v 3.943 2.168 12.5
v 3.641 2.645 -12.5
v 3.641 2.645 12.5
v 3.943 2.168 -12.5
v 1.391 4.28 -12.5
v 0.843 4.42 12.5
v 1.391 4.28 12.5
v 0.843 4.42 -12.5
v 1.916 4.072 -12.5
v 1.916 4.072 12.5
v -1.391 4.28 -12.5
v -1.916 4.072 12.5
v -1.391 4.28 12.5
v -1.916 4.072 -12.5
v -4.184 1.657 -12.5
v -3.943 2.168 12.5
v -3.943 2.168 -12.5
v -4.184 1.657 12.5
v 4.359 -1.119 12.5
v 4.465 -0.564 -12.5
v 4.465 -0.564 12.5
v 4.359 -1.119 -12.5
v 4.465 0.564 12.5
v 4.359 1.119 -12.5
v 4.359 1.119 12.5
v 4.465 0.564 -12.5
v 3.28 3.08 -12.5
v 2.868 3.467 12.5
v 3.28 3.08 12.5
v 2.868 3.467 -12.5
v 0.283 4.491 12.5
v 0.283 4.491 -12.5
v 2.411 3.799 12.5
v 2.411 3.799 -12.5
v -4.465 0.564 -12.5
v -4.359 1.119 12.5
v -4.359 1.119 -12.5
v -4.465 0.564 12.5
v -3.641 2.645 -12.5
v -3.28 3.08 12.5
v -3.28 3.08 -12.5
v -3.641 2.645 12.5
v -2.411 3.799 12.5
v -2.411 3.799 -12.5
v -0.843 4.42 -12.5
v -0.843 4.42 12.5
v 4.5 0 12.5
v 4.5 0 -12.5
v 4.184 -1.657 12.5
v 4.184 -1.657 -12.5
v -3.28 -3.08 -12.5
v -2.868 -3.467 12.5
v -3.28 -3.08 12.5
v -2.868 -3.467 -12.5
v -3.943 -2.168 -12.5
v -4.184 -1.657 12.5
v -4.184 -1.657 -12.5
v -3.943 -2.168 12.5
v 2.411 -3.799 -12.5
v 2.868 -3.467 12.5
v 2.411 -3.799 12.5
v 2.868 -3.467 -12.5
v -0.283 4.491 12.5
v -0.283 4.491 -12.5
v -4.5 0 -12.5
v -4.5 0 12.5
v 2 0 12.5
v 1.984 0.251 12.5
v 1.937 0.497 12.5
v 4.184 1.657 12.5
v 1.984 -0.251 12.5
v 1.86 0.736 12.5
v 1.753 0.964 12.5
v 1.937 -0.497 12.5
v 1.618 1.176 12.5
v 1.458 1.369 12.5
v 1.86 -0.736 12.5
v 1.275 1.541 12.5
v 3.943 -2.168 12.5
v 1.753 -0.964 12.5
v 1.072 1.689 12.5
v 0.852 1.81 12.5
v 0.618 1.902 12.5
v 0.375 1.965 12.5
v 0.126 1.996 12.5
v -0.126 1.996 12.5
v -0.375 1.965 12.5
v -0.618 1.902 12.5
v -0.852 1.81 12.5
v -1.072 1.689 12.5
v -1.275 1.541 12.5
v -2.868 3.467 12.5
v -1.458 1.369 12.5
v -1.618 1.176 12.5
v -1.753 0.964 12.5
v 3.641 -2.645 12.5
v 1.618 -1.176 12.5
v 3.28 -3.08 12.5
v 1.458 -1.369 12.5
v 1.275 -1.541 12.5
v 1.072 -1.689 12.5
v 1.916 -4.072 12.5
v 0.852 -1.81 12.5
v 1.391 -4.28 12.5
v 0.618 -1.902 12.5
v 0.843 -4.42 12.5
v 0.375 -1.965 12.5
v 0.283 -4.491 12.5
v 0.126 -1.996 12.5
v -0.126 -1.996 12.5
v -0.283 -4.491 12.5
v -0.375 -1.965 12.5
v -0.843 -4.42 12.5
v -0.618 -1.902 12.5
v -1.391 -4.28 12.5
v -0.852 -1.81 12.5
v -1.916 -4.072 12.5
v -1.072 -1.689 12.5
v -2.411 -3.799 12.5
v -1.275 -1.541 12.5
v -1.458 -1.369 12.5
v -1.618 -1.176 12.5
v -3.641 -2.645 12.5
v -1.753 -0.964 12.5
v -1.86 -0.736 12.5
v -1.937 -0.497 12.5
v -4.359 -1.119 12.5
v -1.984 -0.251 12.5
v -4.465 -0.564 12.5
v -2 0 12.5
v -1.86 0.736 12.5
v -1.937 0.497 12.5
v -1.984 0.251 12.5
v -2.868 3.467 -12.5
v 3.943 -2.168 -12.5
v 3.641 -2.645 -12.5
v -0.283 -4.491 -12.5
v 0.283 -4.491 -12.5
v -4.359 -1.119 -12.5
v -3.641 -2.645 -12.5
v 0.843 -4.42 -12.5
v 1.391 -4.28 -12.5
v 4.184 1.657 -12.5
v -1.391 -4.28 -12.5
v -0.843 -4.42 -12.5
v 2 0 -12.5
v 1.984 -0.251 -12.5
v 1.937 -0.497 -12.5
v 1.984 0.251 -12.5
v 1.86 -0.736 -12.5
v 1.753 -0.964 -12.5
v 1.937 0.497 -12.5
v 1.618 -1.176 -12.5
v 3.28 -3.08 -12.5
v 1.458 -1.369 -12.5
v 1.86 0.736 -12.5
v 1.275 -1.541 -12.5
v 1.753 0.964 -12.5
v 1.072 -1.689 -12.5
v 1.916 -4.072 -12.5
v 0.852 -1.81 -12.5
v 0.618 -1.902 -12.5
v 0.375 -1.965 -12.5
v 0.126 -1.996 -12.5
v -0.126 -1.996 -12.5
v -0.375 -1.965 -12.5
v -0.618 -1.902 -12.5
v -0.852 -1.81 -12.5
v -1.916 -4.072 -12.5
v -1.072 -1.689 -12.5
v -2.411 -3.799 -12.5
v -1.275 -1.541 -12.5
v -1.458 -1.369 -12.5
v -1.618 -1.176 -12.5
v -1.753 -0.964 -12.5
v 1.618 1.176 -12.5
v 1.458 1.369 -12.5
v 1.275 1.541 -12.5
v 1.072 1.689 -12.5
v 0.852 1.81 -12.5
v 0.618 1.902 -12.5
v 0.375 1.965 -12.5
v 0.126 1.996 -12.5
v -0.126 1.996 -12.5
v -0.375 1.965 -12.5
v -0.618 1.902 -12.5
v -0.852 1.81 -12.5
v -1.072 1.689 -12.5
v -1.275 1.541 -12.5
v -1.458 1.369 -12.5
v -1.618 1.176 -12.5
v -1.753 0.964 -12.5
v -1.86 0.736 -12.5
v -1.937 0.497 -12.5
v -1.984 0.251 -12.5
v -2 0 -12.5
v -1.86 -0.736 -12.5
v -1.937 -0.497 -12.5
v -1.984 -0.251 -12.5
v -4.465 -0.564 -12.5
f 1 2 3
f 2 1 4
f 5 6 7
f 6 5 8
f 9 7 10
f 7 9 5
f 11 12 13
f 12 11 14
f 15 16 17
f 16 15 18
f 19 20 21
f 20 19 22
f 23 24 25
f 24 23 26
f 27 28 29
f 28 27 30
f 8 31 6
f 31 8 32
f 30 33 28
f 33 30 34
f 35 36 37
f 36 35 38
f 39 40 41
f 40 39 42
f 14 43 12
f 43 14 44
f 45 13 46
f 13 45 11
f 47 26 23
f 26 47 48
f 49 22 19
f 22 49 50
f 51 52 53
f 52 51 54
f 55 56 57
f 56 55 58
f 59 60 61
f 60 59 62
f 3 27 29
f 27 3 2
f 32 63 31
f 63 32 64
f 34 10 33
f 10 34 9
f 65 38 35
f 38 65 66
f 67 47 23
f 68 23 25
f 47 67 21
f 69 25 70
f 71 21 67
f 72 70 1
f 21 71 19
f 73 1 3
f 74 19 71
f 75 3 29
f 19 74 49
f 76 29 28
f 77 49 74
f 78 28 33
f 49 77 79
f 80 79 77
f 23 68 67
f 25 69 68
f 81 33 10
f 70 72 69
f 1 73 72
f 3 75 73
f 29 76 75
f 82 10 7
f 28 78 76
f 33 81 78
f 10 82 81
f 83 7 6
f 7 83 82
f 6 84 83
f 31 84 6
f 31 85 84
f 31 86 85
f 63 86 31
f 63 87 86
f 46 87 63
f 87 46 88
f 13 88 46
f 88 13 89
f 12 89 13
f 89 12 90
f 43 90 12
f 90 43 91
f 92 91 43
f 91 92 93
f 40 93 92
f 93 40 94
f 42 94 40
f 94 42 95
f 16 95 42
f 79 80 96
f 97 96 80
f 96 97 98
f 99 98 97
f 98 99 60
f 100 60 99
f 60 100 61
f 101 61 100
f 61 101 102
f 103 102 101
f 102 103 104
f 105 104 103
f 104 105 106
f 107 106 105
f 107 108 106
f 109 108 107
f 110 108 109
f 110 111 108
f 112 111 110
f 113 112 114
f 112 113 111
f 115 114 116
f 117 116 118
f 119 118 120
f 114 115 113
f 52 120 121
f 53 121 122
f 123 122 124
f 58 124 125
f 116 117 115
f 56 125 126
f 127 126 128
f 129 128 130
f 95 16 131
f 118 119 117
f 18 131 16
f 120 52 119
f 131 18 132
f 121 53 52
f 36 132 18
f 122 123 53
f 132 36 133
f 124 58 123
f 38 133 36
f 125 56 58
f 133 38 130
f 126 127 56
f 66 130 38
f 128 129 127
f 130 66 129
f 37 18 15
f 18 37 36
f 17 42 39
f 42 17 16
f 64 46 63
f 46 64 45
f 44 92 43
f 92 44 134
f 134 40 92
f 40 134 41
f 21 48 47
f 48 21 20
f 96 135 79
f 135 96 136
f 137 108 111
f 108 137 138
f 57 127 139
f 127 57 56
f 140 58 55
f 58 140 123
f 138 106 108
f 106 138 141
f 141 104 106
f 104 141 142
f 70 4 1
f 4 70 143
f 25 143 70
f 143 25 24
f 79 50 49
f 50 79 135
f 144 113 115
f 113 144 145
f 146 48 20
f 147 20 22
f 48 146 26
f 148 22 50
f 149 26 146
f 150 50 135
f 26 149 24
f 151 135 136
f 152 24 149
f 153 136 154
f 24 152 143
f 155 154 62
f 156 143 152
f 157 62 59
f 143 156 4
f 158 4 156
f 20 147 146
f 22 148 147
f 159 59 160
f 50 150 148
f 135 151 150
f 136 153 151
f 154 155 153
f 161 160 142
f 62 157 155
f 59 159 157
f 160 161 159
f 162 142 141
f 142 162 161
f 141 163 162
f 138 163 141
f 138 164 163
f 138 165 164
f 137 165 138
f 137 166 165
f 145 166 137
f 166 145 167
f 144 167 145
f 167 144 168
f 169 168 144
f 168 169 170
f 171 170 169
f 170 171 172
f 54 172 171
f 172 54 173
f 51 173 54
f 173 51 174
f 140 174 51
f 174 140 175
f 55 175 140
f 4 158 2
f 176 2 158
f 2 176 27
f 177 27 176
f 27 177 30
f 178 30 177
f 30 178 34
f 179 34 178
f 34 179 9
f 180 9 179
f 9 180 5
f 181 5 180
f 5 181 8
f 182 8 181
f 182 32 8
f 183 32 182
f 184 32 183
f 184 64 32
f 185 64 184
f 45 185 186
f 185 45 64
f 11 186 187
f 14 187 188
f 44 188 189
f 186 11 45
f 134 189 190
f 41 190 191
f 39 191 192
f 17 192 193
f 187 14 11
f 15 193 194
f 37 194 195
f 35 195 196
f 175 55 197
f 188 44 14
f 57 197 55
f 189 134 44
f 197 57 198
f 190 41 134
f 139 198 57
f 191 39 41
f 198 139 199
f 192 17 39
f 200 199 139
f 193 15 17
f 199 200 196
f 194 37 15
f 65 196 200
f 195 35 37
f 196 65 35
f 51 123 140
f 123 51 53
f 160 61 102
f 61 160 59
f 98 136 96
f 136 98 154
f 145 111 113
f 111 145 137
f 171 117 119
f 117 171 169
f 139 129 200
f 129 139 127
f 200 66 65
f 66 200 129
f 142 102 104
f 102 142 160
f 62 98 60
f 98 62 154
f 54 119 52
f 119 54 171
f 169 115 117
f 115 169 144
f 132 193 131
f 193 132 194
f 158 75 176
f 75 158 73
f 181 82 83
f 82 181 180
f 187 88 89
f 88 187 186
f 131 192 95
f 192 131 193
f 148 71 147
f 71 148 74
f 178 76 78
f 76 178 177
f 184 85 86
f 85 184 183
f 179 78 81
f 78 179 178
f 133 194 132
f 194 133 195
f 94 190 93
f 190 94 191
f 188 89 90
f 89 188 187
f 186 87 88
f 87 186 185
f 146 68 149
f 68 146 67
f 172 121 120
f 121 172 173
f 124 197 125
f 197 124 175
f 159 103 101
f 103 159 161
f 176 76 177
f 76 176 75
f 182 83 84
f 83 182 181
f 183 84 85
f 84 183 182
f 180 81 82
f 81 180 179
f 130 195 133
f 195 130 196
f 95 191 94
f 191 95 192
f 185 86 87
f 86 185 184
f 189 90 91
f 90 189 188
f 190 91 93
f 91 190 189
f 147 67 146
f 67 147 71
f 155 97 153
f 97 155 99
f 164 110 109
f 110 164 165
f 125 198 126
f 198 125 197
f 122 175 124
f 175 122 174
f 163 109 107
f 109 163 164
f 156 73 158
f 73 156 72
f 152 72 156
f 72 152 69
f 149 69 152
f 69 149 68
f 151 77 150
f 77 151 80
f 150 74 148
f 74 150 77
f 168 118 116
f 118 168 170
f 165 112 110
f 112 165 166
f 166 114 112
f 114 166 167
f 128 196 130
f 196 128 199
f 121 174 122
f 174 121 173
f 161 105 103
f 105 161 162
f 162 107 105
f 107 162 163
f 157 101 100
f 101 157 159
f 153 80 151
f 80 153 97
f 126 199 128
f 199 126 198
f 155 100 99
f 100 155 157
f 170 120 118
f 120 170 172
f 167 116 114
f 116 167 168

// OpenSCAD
$fn = 50;


difference() {
	union() {
		translate(v = [0, 0, -12.5000000000]) {
			cylinder(h = 25, r = 4.5000000000);
		}
	}
	union() {
		translate(v = [0, 0, -100.0000000000]) {
			cylinder(h = 200, r = 2);
		}
	}
}
